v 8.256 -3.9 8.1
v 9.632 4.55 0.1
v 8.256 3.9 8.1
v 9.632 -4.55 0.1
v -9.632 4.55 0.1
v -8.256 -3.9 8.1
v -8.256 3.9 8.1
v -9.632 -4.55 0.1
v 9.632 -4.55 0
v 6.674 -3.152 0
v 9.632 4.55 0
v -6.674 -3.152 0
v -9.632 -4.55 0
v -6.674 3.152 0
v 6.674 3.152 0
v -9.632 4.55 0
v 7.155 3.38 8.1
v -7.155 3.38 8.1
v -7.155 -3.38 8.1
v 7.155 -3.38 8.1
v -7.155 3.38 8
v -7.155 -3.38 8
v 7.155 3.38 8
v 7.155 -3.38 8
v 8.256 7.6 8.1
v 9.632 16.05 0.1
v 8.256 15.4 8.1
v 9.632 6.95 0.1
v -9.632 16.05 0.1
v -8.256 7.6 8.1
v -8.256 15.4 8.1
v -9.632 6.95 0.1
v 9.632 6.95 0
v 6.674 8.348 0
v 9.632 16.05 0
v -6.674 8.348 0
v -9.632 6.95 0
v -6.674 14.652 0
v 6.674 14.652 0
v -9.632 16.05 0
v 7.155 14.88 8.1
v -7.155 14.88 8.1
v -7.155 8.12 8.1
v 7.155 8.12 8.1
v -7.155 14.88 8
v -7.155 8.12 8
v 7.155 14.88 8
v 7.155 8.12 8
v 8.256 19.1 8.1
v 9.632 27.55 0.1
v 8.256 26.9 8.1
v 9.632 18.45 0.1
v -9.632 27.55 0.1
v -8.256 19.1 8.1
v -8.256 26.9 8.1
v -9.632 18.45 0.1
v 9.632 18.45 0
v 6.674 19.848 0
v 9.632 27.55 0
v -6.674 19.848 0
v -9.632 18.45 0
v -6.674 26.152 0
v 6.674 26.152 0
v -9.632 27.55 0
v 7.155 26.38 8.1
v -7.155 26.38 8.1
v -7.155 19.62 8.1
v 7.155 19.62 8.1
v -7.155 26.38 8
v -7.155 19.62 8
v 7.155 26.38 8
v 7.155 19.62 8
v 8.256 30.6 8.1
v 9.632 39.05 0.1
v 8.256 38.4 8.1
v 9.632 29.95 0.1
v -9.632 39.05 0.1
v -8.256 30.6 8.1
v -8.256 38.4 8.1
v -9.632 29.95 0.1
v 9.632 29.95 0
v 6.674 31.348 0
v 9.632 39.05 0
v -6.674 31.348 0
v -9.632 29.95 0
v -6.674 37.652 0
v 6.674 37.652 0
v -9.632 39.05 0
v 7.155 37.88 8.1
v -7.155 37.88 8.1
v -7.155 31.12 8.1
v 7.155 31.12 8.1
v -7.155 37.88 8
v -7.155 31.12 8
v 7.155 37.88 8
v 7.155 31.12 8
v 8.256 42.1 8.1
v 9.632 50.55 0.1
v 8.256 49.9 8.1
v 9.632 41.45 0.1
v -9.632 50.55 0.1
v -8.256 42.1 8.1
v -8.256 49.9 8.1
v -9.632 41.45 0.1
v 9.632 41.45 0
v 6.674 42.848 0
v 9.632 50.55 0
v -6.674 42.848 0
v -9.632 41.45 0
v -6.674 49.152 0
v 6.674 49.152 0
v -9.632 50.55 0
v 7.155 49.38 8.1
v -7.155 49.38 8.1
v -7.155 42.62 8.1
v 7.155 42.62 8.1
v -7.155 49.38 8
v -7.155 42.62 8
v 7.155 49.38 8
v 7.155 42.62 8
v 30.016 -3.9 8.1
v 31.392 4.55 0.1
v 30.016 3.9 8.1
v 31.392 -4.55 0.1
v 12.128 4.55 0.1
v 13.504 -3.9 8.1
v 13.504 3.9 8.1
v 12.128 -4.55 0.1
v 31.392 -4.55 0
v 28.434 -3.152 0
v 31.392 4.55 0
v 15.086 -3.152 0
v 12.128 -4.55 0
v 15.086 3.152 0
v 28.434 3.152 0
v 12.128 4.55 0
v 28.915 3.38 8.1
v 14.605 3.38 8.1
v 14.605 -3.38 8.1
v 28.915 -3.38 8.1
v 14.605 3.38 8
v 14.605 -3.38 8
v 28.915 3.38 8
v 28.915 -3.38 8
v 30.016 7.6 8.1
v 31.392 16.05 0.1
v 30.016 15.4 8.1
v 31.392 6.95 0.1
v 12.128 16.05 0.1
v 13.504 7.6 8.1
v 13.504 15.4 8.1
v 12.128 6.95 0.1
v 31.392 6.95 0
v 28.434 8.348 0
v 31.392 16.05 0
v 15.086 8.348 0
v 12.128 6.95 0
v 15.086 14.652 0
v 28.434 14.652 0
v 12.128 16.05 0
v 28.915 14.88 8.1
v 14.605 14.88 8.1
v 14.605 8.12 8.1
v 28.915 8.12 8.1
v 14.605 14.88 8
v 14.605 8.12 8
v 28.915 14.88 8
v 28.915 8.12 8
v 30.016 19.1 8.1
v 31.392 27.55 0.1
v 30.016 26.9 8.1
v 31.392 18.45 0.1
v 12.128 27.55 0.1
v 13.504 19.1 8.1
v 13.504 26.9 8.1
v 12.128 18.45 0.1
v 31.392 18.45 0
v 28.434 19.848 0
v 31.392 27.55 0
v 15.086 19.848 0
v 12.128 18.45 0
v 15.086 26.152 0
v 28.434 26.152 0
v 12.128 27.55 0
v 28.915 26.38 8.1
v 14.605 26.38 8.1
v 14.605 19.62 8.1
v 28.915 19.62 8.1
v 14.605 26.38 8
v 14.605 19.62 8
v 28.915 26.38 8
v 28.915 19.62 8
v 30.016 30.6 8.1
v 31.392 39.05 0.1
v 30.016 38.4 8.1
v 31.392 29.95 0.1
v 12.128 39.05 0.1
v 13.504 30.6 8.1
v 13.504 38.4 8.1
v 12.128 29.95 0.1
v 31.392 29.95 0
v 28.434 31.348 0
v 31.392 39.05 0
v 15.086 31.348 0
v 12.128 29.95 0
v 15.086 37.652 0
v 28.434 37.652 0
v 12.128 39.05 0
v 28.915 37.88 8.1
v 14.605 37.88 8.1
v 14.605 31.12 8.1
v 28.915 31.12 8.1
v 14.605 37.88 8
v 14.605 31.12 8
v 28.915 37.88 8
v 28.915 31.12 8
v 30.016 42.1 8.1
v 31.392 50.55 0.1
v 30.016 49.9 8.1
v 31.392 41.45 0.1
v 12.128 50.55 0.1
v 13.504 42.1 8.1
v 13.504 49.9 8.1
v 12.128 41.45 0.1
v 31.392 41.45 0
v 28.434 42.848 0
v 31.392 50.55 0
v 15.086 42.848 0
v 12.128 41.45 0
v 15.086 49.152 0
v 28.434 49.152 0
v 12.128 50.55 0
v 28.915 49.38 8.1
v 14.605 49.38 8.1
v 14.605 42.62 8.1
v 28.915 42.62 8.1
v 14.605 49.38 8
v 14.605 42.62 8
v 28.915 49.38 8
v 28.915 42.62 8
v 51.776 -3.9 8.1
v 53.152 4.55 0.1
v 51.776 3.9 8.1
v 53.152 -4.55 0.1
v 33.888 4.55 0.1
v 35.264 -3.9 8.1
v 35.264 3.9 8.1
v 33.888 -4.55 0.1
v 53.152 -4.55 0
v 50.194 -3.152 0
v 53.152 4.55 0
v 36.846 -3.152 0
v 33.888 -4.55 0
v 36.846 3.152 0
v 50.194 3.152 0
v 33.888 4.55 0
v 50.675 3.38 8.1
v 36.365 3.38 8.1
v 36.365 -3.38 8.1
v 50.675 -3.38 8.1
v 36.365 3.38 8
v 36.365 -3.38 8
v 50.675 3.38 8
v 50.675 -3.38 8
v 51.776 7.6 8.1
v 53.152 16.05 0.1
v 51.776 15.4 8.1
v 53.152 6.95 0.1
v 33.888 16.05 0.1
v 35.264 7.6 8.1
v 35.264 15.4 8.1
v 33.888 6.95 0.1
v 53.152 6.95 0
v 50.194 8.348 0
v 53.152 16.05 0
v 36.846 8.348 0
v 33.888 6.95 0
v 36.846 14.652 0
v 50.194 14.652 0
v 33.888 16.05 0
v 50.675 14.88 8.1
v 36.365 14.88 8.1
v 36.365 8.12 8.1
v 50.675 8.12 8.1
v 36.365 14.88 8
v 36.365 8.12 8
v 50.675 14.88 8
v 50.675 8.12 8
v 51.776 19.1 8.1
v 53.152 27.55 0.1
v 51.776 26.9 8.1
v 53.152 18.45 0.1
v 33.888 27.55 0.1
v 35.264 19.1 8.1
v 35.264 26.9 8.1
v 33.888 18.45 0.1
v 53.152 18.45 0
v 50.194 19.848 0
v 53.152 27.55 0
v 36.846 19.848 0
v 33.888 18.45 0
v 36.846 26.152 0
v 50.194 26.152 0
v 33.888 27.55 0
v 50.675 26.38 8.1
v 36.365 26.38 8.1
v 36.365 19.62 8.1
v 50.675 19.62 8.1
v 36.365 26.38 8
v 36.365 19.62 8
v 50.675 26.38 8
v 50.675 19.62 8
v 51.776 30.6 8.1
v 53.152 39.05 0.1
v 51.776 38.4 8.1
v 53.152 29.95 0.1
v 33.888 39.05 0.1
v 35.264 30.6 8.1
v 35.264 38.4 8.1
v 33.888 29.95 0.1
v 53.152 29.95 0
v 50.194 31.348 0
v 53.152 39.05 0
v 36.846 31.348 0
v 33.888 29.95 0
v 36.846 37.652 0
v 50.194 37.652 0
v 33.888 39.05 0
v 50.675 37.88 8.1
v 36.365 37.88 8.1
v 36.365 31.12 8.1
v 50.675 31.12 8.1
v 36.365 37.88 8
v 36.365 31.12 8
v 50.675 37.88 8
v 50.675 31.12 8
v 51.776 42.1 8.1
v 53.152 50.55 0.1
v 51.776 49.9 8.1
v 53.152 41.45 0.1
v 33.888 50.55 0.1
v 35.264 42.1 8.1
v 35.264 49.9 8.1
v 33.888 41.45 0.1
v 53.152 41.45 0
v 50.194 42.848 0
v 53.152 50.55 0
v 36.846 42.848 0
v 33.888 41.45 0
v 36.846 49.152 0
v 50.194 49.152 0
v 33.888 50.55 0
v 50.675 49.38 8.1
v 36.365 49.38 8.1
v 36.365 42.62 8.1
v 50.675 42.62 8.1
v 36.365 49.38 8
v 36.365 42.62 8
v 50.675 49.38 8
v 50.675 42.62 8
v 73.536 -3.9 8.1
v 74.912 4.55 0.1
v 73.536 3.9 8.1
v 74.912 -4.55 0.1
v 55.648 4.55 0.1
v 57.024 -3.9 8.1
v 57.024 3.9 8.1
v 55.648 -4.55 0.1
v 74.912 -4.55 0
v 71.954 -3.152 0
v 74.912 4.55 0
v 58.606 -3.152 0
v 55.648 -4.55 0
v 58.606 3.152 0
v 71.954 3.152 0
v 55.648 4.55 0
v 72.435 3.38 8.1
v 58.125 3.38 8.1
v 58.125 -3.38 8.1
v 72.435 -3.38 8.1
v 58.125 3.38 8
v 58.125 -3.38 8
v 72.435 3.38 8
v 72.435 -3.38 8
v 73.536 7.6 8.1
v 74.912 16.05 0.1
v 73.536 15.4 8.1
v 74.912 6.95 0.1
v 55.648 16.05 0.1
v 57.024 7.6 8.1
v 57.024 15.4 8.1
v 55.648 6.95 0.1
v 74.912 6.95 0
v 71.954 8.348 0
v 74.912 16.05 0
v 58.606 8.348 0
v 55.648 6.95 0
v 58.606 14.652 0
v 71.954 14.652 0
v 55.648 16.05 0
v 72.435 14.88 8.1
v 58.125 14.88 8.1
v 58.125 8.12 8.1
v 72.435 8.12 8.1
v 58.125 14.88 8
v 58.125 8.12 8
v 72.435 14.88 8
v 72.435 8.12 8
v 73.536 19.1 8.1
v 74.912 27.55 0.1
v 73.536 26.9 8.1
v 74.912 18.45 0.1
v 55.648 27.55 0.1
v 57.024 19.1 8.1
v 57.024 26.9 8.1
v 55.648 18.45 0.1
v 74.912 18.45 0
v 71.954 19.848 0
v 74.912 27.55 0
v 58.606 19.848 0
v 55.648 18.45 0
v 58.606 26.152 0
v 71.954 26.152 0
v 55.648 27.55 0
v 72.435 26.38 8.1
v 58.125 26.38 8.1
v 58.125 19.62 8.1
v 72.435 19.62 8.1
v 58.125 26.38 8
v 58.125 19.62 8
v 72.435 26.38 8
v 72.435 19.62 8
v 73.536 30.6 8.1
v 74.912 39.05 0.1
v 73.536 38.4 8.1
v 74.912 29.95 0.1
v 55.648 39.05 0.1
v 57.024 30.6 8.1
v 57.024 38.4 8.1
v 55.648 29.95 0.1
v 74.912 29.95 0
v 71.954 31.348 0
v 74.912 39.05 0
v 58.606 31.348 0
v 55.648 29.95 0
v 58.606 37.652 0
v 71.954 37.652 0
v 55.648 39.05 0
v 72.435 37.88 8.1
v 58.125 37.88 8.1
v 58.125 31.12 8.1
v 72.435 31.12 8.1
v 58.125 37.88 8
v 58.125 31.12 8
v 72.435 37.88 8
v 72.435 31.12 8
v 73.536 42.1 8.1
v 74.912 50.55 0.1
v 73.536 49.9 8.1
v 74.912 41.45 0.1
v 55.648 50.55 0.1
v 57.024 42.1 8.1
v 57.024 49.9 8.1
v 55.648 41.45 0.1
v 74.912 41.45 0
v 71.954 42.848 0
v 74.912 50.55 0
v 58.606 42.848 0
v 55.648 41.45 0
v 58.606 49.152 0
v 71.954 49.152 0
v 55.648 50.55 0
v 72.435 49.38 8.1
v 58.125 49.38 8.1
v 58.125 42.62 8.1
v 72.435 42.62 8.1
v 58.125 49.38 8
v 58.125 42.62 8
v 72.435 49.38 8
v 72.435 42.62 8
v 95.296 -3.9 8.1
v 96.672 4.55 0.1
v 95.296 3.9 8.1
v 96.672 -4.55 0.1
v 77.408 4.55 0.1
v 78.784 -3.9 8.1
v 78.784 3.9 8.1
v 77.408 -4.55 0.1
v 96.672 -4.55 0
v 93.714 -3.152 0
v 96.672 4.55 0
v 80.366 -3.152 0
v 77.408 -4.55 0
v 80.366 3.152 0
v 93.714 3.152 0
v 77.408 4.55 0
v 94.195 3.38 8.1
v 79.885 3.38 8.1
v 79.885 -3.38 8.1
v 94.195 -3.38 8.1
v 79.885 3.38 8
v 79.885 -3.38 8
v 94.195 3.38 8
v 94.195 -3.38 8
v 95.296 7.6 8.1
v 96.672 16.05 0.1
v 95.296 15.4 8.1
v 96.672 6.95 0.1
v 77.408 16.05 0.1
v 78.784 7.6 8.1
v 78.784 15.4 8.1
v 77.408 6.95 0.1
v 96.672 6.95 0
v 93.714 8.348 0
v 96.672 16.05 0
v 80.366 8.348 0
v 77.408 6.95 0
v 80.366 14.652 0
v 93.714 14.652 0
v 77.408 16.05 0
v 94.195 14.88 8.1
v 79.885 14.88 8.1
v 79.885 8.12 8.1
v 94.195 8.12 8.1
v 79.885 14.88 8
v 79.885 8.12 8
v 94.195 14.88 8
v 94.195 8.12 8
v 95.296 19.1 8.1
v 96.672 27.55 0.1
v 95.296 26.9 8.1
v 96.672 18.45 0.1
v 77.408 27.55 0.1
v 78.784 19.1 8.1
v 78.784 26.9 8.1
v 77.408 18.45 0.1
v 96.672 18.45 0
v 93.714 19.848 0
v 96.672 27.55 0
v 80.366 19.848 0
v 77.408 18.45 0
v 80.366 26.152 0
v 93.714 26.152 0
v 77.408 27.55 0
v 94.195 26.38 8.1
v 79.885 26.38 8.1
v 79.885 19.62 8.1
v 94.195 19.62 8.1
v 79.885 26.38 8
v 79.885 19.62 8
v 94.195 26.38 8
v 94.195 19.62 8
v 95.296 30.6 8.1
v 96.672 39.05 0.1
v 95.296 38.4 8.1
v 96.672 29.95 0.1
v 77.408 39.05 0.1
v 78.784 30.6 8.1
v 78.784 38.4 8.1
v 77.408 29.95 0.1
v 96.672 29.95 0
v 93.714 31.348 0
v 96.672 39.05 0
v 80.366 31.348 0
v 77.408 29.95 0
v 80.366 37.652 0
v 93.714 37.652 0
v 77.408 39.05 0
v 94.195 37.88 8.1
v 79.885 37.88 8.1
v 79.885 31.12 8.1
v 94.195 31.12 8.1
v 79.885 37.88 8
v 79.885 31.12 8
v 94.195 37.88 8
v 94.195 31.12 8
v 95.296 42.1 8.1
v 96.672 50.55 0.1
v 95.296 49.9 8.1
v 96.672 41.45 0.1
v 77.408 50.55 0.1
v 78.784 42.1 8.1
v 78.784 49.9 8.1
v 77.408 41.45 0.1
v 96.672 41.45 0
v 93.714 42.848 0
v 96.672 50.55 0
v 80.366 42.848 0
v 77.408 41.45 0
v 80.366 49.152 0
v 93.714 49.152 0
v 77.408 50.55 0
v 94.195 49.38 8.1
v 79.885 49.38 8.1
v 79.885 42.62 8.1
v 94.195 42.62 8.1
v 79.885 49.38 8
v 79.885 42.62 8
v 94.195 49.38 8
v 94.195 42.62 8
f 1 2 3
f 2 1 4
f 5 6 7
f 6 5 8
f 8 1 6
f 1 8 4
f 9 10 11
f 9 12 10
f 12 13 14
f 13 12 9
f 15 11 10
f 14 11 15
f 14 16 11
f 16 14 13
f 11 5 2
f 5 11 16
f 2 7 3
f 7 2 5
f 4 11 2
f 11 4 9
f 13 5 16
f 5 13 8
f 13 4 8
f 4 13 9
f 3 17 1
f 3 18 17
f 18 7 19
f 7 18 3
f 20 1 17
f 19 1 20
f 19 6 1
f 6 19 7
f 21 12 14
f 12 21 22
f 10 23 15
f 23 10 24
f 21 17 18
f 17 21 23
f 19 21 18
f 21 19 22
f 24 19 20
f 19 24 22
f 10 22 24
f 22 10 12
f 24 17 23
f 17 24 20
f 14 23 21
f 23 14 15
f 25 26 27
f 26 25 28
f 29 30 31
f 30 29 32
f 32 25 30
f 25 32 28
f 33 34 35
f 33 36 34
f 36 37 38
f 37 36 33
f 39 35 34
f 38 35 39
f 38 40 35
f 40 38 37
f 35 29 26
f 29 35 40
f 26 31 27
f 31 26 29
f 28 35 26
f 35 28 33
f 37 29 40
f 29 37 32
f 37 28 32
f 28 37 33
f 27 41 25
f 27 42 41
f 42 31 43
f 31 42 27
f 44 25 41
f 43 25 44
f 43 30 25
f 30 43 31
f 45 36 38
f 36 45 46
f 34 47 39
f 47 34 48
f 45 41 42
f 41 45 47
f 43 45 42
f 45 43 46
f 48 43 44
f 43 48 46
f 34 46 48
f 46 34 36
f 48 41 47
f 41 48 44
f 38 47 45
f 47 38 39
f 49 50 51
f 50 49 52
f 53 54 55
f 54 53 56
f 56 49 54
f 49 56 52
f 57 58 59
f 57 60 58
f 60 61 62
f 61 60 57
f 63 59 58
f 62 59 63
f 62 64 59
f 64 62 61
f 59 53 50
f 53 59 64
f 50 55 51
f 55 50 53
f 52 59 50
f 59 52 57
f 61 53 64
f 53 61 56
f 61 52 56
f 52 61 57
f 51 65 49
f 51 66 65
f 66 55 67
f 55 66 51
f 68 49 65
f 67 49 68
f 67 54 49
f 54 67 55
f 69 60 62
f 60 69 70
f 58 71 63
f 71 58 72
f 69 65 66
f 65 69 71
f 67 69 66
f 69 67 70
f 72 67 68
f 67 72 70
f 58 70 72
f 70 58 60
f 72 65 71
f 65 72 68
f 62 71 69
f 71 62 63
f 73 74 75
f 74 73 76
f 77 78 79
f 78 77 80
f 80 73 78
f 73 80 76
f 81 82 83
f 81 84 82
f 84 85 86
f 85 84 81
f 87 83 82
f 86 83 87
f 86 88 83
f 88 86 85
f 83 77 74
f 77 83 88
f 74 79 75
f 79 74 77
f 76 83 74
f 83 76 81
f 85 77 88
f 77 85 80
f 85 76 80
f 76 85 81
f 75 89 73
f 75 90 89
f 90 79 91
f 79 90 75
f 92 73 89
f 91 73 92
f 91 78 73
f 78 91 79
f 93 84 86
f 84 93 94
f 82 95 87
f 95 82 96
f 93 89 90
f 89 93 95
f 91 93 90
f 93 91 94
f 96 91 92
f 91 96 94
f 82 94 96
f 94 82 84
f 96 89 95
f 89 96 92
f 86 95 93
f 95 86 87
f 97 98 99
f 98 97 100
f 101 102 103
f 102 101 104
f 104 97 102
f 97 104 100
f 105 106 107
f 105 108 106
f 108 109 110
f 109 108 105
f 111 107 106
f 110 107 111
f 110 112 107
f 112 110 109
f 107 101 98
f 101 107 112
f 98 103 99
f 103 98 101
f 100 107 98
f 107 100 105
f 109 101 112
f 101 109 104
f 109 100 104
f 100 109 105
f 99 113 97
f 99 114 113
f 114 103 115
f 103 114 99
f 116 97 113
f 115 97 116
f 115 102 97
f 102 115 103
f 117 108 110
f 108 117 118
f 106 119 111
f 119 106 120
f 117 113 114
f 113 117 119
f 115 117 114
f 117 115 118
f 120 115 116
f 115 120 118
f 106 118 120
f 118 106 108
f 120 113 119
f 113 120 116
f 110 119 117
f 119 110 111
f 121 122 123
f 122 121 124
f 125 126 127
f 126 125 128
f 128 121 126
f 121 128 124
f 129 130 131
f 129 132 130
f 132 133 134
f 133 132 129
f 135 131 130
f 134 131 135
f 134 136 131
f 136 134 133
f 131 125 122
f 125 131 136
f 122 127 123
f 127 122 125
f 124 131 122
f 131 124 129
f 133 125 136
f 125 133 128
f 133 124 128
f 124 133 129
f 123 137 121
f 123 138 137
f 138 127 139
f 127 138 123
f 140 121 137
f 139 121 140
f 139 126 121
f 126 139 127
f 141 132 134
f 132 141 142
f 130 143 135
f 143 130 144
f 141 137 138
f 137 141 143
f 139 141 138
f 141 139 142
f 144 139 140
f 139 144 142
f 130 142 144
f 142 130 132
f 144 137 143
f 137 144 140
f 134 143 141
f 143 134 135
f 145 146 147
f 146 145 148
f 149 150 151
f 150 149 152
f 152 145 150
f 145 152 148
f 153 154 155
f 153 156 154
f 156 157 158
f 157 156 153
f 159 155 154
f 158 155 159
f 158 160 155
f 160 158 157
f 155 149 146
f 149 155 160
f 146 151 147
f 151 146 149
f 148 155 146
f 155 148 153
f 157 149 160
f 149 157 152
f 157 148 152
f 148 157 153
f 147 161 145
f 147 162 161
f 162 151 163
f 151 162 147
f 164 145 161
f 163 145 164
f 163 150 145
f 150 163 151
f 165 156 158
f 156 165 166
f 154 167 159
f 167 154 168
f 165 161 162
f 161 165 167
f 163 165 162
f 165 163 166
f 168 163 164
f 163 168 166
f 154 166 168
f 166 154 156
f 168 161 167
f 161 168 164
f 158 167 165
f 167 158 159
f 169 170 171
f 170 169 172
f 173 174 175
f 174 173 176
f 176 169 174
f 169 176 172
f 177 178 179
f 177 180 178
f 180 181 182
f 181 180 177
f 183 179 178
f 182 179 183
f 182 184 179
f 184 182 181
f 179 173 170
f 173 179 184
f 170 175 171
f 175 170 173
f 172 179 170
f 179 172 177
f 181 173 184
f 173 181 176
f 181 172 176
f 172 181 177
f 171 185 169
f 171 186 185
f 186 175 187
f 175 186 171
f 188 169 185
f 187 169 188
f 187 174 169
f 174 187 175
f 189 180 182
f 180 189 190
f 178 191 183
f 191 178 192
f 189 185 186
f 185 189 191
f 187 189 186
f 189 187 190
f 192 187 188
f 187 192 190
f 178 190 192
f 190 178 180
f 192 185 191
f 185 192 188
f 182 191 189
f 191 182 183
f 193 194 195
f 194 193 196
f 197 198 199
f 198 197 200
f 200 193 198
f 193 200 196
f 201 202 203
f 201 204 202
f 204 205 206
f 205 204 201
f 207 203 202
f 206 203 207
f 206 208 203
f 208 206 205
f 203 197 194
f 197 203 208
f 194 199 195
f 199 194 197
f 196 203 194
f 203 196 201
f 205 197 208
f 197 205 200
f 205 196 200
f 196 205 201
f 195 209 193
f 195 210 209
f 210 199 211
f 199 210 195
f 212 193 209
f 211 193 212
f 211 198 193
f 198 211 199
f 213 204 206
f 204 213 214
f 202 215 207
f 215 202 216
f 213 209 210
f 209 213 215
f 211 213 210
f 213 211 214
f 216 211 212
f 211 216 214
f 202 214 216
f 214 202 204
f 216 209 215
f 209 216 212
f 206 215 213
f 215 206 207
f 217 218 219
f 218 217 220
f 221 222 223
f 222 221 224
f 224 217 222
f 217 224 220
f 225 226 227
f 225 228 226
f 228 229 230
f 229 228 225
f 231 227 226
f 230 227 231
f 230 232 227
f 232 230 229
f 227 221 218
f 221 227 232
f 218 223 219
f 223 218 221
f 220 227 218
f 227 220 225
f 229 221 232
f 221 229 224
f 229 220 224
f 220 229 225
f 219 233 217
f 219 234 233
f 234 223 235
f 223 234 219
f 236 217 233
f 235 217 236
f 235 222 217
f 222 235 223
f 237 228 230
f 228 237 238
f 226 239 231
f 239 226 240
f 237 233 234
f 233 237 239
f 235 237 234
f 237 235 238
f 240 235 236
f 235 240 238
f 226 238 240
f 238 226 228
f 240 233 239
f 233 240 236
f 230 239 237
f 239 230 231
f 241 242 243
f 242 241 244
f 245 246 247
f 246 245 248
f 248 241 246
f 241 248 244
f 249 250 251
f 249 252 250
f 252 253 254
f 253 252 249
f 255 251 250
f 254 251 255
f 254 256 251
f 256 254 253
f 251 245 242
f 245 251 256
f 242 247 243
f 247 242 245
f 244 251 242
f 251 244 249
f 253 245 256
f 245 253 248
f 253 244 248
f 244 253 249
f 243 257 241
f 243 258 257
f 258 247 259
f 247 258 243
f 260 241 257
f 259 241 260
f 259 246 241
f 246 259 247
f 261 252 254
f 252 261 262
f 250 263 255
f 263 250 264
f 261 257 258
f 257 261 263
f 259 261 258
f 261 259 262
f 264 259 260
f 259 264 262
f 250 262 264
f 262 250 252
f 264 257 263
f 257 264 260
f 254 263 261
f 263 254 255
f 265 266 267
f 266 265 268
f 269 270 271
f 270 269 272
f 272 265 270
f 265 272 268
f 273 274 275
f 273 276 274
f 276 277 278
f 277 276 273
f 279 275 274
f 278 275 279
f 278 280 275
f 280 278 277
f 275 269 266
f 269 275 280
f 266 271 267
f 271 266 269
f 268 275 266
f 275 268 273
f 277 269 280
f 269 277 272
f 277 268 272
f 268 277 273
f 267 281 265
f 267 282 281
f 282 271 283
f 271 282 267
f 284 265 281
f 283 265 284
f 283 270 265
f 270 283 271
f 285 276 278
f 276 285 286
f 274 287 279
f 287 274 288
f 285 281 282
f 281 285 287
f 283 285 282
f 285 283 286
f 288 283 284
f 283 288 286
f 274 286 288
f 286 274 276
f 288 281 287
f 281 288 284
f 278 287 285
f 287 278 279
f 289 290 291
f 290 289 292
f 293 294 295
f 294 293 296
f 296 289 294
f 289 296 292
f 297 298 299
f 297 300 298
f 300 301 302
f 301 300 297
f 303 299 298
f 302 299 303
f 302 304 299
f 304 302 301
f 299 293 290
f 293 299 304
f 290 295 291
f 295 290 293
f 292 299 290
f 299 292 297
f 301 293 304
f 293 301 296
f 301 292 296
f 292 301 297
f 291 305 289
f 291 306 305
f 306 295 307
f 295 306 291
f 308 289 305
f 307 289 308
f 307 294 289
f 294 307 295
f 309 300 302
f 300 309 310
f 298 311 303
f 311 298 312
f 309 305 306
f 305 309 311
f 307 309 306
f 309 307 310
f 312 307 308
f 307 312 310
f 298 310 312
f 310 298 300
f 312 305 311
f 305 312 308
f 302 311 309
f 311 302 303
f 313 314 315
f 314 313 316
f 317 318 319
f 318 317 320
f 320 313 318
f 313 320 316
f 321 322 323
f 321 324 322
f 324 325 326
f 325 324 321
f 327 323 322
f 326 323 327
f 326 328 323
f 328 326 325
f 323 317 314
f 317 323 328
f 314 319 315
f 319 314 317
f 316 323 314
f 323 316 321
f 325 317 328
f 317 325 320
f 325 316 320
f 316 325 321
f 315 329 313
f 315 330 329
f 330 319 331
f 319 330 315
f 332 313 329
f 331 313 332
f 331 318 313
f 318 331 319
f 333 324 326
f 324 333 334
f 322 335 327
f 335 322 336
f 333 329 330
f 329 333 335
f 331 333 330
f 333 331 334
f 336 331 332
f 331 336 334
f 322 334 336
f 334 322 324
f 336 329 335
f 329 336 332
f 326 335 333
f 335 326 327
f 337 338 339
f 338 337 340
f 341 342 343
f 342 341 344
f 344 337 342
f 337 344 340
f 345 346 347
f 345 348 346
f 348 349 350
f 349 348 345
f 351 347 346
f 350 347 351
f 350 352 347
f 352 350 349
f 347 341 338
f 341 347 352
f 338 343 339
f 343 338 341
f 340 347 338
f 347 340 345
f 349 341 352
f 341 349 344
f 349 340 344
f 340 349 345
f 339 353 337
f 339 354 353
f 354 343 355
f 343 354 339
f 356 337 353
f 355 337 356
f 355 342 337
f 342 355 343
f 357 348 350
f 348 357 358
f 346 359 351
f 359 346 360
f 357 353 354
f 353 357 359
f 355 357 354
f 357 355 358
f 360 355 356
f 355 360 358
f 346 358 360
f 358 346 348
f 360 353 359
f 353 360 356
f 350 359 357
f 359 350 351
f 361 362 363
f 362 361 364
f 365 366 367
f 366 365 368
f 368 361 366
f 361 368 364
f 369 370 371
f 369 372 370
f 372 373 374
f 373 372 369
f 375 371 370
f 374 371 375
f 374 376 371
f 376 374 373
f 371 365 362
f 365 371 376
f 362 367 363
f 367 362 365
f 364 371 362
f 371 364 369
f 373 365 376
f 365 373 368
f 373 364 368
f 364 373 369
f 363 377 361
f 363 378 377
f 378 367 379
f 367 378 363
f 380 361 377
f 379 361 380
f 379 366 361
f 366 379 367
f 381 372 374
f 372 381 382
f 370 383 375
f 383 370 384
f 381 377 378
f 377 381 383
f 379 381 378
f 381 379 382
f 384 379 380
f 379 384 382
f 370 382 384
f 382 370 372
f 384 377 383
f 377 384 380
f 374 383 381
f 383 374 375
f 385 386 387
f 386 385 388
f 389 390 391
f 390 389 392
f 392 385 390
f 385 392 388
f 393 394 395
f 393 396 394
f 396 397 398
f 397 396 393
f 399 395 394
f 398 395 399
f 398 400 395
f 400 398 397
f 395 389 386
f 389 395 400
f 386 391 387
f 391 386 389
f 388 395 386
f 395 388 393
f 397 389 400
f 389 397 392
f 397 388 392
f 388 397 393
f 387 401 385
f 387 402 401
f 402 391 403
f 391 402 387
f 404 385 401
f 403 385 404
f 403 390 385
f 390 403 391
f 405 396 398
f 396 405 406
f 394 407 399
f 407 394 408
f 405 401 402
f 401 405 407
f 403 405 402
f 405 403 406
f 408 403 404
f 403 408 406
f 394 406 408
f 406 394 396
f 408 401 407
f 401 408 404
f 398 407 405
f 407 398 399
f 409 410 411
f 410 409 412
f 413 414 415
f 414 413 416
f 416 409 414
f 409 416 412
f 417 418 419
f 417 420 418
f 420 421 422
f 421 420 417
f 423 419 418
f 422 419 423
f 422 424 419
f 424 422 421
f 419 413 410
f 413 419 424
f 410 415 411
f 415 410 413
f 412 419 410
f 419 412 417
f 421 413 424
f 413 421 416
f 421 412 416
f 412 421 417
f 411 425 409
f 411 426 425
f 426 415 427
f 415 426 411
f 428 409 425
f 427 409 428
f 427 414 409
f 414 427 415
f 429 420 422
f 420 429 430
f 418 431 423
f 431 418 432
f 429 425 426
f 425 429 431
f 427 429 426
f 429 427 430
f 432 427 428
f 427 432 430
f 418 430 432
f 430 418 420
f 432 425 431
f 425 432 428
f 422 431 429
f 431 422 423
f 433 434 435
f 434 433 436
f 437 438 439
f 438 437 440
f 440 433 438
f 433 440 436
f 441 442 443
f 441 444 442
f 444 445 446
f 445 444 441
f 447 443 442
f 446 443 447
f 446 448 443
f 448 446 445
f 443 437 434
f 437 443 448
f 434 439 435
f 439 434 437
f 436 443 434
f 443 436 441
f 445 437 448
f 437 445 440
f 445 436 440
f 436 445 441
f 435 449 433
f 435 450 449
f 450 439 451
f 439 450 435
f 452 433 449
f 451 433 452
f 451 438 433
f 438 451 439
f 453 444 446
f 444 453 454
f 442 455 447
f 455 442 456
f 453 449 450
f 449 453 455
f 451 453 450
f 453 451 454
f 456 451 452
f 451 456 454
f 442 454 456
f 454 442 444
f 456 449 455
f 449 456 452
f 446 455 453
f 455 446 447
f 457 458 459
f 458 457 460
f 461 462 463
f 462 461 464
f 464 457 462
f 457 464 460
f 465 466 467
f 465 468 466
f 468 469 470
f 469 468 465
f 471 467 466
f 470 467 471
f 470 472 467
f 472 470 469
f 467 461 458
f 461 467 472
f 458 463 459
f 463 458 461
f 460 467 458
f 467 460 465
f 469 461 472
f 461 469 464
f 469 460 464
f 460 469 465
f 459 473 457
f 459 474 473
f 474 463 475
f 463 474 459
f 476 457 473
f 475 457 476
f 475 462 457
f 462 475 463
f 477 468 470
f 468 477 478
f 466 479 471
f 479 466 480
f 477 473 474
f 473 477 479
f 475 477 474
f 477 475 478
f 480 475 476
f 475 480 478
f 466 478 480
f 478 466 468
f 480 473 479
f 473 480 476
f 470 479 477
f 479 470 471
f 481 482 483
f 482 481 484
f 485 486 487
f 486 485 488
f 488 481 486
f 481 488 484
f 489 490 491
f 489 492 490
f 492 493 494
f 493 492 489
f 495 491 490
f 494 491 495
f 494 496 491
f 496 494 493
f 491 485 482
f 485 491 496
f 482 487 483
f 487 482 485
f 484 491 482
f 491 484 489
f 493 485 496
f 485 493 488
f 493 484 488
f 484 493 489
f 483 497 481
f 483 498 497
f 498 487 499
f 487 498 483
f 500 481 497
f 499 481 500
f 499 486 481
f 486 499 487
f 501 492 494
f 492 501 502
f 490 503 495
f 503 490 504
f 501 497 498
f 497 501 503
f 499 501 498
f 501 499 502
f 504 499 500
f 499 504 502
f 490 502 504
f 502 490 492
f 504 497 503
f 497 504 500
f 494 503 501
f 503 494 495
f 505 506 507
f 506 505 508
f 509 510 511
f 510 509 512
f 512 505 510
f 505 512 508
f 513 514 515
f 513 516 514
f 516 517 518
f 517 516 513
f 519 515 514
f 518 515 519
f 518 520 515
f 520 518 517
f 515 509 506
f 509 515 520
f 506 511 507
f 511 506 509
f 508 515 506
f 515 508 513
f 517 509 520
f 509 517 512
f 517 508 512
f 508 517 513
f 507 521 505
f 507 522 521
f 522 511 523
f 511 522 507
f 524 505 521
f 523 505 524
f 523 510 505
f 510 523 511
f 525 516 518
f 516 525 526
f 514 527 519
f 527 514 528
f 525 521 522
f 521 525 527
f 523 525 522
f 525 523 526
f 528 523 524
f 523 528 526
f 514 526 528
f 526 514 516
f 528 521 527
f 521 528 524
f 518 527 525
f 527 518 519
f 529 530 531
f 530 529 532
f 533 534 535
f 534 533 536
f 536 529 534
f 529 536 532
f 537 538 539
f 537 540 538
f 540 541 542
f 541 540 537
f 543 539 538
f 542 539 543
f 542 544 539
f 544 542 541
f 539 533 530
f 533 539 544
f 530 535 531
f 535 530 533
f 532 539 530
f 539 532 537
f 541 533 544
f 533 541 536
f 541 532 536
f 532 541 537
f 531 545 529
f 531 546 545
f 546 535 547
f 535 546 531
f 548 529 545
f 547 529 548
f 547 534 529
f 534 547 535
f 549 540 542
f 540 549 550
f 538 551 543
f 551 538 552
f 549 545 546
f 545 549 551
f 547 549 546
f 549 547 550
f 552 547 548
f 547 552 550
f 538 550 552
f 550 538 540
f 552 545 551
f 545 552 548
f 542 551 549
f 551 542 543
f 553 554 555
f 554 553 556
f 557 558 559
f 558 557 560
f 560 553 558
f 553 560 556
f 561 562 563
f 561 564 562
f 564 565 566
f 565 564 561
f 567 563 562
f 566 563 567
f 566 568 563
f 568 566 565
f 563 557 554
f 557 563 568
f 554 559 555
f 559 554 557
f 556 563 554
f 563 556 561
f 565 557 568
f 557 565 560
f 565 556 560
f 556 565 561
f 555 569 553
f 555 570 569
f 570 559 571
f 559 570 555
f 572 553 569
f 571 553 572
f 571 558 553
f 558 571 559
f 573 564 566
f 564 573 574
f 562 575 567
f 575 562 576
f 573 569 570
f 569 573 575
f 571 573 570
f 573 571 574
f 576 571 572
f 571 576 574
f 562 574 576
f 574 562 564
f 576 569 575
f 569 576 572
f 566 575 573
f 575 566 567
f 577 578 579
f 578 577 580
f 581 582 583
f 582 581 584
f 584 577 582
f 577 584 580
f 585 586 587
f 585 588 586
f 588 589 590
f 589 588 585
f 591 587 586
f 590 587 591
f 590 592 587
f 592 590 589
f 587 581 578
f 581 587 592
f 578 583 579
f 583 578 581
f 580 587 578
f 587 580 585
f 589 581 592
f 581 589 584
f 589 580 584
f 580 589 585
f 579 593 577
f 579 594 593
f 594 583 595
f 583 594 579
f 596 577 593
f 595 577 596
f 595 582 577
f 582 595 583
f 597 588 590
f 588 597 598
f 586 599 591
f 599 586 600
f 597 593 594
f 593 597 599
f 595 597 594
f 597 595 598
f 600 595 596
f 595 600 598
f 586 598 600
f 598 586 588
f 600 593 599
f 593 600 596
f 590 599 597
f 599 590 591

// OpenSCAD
// 5.43mm wide 3.06mm tall 9mm tip

// maybe try wall from 2mm to 3mm

// bb(width, height, ztall);
// bb(5.4,3.0,6); // jst
// bb(13.76,6.5,4); // xt60
// bb(19.5,8.5,6); // xt90
// bb(16.0,7.9,9); // 4mm

ww=13.76;
hh=6.5;
zz=8;

iota=.1;

module flat() {
}

module outside() {
    // bigger on bottom
    bf=1.4;
    tf=1.2;
    hull() {
        translate([-ww*bf/2,-hh*bf/2,0]) linear_extrude(iota) square([ww*bf,hh*bf]);
        translate([-ww*tf/2,-hh*tf/2,zz]) linear_extrude(iota) square([ww*tf,hh*tf]);
    }
}

module inside() {
    // bigger on top
    bf=.97;
    tf=1.04;
    hull() {
        translate([-ww*bf/2,-hh*bf/2,0]) linear_extrude(iota) square([ww*bf,hh*bf]);
        translate([-ww*tf/2,-hh*tf/2,zz]) linear_extrude(iota) square([ww*tf,hh*tf]);
    }
}

module bottom() {
}

module main() {
    difference() {
        outside();
        translate([0,0,0]) inside();
    }
}

module several(n) {
    for (i = [0:n-1]) {
        for (j = [0:n-1]) {
            translate([i*(ww+8),j*(hh+5),0]) main();
        }   
    }
}
//main();
several(5);
